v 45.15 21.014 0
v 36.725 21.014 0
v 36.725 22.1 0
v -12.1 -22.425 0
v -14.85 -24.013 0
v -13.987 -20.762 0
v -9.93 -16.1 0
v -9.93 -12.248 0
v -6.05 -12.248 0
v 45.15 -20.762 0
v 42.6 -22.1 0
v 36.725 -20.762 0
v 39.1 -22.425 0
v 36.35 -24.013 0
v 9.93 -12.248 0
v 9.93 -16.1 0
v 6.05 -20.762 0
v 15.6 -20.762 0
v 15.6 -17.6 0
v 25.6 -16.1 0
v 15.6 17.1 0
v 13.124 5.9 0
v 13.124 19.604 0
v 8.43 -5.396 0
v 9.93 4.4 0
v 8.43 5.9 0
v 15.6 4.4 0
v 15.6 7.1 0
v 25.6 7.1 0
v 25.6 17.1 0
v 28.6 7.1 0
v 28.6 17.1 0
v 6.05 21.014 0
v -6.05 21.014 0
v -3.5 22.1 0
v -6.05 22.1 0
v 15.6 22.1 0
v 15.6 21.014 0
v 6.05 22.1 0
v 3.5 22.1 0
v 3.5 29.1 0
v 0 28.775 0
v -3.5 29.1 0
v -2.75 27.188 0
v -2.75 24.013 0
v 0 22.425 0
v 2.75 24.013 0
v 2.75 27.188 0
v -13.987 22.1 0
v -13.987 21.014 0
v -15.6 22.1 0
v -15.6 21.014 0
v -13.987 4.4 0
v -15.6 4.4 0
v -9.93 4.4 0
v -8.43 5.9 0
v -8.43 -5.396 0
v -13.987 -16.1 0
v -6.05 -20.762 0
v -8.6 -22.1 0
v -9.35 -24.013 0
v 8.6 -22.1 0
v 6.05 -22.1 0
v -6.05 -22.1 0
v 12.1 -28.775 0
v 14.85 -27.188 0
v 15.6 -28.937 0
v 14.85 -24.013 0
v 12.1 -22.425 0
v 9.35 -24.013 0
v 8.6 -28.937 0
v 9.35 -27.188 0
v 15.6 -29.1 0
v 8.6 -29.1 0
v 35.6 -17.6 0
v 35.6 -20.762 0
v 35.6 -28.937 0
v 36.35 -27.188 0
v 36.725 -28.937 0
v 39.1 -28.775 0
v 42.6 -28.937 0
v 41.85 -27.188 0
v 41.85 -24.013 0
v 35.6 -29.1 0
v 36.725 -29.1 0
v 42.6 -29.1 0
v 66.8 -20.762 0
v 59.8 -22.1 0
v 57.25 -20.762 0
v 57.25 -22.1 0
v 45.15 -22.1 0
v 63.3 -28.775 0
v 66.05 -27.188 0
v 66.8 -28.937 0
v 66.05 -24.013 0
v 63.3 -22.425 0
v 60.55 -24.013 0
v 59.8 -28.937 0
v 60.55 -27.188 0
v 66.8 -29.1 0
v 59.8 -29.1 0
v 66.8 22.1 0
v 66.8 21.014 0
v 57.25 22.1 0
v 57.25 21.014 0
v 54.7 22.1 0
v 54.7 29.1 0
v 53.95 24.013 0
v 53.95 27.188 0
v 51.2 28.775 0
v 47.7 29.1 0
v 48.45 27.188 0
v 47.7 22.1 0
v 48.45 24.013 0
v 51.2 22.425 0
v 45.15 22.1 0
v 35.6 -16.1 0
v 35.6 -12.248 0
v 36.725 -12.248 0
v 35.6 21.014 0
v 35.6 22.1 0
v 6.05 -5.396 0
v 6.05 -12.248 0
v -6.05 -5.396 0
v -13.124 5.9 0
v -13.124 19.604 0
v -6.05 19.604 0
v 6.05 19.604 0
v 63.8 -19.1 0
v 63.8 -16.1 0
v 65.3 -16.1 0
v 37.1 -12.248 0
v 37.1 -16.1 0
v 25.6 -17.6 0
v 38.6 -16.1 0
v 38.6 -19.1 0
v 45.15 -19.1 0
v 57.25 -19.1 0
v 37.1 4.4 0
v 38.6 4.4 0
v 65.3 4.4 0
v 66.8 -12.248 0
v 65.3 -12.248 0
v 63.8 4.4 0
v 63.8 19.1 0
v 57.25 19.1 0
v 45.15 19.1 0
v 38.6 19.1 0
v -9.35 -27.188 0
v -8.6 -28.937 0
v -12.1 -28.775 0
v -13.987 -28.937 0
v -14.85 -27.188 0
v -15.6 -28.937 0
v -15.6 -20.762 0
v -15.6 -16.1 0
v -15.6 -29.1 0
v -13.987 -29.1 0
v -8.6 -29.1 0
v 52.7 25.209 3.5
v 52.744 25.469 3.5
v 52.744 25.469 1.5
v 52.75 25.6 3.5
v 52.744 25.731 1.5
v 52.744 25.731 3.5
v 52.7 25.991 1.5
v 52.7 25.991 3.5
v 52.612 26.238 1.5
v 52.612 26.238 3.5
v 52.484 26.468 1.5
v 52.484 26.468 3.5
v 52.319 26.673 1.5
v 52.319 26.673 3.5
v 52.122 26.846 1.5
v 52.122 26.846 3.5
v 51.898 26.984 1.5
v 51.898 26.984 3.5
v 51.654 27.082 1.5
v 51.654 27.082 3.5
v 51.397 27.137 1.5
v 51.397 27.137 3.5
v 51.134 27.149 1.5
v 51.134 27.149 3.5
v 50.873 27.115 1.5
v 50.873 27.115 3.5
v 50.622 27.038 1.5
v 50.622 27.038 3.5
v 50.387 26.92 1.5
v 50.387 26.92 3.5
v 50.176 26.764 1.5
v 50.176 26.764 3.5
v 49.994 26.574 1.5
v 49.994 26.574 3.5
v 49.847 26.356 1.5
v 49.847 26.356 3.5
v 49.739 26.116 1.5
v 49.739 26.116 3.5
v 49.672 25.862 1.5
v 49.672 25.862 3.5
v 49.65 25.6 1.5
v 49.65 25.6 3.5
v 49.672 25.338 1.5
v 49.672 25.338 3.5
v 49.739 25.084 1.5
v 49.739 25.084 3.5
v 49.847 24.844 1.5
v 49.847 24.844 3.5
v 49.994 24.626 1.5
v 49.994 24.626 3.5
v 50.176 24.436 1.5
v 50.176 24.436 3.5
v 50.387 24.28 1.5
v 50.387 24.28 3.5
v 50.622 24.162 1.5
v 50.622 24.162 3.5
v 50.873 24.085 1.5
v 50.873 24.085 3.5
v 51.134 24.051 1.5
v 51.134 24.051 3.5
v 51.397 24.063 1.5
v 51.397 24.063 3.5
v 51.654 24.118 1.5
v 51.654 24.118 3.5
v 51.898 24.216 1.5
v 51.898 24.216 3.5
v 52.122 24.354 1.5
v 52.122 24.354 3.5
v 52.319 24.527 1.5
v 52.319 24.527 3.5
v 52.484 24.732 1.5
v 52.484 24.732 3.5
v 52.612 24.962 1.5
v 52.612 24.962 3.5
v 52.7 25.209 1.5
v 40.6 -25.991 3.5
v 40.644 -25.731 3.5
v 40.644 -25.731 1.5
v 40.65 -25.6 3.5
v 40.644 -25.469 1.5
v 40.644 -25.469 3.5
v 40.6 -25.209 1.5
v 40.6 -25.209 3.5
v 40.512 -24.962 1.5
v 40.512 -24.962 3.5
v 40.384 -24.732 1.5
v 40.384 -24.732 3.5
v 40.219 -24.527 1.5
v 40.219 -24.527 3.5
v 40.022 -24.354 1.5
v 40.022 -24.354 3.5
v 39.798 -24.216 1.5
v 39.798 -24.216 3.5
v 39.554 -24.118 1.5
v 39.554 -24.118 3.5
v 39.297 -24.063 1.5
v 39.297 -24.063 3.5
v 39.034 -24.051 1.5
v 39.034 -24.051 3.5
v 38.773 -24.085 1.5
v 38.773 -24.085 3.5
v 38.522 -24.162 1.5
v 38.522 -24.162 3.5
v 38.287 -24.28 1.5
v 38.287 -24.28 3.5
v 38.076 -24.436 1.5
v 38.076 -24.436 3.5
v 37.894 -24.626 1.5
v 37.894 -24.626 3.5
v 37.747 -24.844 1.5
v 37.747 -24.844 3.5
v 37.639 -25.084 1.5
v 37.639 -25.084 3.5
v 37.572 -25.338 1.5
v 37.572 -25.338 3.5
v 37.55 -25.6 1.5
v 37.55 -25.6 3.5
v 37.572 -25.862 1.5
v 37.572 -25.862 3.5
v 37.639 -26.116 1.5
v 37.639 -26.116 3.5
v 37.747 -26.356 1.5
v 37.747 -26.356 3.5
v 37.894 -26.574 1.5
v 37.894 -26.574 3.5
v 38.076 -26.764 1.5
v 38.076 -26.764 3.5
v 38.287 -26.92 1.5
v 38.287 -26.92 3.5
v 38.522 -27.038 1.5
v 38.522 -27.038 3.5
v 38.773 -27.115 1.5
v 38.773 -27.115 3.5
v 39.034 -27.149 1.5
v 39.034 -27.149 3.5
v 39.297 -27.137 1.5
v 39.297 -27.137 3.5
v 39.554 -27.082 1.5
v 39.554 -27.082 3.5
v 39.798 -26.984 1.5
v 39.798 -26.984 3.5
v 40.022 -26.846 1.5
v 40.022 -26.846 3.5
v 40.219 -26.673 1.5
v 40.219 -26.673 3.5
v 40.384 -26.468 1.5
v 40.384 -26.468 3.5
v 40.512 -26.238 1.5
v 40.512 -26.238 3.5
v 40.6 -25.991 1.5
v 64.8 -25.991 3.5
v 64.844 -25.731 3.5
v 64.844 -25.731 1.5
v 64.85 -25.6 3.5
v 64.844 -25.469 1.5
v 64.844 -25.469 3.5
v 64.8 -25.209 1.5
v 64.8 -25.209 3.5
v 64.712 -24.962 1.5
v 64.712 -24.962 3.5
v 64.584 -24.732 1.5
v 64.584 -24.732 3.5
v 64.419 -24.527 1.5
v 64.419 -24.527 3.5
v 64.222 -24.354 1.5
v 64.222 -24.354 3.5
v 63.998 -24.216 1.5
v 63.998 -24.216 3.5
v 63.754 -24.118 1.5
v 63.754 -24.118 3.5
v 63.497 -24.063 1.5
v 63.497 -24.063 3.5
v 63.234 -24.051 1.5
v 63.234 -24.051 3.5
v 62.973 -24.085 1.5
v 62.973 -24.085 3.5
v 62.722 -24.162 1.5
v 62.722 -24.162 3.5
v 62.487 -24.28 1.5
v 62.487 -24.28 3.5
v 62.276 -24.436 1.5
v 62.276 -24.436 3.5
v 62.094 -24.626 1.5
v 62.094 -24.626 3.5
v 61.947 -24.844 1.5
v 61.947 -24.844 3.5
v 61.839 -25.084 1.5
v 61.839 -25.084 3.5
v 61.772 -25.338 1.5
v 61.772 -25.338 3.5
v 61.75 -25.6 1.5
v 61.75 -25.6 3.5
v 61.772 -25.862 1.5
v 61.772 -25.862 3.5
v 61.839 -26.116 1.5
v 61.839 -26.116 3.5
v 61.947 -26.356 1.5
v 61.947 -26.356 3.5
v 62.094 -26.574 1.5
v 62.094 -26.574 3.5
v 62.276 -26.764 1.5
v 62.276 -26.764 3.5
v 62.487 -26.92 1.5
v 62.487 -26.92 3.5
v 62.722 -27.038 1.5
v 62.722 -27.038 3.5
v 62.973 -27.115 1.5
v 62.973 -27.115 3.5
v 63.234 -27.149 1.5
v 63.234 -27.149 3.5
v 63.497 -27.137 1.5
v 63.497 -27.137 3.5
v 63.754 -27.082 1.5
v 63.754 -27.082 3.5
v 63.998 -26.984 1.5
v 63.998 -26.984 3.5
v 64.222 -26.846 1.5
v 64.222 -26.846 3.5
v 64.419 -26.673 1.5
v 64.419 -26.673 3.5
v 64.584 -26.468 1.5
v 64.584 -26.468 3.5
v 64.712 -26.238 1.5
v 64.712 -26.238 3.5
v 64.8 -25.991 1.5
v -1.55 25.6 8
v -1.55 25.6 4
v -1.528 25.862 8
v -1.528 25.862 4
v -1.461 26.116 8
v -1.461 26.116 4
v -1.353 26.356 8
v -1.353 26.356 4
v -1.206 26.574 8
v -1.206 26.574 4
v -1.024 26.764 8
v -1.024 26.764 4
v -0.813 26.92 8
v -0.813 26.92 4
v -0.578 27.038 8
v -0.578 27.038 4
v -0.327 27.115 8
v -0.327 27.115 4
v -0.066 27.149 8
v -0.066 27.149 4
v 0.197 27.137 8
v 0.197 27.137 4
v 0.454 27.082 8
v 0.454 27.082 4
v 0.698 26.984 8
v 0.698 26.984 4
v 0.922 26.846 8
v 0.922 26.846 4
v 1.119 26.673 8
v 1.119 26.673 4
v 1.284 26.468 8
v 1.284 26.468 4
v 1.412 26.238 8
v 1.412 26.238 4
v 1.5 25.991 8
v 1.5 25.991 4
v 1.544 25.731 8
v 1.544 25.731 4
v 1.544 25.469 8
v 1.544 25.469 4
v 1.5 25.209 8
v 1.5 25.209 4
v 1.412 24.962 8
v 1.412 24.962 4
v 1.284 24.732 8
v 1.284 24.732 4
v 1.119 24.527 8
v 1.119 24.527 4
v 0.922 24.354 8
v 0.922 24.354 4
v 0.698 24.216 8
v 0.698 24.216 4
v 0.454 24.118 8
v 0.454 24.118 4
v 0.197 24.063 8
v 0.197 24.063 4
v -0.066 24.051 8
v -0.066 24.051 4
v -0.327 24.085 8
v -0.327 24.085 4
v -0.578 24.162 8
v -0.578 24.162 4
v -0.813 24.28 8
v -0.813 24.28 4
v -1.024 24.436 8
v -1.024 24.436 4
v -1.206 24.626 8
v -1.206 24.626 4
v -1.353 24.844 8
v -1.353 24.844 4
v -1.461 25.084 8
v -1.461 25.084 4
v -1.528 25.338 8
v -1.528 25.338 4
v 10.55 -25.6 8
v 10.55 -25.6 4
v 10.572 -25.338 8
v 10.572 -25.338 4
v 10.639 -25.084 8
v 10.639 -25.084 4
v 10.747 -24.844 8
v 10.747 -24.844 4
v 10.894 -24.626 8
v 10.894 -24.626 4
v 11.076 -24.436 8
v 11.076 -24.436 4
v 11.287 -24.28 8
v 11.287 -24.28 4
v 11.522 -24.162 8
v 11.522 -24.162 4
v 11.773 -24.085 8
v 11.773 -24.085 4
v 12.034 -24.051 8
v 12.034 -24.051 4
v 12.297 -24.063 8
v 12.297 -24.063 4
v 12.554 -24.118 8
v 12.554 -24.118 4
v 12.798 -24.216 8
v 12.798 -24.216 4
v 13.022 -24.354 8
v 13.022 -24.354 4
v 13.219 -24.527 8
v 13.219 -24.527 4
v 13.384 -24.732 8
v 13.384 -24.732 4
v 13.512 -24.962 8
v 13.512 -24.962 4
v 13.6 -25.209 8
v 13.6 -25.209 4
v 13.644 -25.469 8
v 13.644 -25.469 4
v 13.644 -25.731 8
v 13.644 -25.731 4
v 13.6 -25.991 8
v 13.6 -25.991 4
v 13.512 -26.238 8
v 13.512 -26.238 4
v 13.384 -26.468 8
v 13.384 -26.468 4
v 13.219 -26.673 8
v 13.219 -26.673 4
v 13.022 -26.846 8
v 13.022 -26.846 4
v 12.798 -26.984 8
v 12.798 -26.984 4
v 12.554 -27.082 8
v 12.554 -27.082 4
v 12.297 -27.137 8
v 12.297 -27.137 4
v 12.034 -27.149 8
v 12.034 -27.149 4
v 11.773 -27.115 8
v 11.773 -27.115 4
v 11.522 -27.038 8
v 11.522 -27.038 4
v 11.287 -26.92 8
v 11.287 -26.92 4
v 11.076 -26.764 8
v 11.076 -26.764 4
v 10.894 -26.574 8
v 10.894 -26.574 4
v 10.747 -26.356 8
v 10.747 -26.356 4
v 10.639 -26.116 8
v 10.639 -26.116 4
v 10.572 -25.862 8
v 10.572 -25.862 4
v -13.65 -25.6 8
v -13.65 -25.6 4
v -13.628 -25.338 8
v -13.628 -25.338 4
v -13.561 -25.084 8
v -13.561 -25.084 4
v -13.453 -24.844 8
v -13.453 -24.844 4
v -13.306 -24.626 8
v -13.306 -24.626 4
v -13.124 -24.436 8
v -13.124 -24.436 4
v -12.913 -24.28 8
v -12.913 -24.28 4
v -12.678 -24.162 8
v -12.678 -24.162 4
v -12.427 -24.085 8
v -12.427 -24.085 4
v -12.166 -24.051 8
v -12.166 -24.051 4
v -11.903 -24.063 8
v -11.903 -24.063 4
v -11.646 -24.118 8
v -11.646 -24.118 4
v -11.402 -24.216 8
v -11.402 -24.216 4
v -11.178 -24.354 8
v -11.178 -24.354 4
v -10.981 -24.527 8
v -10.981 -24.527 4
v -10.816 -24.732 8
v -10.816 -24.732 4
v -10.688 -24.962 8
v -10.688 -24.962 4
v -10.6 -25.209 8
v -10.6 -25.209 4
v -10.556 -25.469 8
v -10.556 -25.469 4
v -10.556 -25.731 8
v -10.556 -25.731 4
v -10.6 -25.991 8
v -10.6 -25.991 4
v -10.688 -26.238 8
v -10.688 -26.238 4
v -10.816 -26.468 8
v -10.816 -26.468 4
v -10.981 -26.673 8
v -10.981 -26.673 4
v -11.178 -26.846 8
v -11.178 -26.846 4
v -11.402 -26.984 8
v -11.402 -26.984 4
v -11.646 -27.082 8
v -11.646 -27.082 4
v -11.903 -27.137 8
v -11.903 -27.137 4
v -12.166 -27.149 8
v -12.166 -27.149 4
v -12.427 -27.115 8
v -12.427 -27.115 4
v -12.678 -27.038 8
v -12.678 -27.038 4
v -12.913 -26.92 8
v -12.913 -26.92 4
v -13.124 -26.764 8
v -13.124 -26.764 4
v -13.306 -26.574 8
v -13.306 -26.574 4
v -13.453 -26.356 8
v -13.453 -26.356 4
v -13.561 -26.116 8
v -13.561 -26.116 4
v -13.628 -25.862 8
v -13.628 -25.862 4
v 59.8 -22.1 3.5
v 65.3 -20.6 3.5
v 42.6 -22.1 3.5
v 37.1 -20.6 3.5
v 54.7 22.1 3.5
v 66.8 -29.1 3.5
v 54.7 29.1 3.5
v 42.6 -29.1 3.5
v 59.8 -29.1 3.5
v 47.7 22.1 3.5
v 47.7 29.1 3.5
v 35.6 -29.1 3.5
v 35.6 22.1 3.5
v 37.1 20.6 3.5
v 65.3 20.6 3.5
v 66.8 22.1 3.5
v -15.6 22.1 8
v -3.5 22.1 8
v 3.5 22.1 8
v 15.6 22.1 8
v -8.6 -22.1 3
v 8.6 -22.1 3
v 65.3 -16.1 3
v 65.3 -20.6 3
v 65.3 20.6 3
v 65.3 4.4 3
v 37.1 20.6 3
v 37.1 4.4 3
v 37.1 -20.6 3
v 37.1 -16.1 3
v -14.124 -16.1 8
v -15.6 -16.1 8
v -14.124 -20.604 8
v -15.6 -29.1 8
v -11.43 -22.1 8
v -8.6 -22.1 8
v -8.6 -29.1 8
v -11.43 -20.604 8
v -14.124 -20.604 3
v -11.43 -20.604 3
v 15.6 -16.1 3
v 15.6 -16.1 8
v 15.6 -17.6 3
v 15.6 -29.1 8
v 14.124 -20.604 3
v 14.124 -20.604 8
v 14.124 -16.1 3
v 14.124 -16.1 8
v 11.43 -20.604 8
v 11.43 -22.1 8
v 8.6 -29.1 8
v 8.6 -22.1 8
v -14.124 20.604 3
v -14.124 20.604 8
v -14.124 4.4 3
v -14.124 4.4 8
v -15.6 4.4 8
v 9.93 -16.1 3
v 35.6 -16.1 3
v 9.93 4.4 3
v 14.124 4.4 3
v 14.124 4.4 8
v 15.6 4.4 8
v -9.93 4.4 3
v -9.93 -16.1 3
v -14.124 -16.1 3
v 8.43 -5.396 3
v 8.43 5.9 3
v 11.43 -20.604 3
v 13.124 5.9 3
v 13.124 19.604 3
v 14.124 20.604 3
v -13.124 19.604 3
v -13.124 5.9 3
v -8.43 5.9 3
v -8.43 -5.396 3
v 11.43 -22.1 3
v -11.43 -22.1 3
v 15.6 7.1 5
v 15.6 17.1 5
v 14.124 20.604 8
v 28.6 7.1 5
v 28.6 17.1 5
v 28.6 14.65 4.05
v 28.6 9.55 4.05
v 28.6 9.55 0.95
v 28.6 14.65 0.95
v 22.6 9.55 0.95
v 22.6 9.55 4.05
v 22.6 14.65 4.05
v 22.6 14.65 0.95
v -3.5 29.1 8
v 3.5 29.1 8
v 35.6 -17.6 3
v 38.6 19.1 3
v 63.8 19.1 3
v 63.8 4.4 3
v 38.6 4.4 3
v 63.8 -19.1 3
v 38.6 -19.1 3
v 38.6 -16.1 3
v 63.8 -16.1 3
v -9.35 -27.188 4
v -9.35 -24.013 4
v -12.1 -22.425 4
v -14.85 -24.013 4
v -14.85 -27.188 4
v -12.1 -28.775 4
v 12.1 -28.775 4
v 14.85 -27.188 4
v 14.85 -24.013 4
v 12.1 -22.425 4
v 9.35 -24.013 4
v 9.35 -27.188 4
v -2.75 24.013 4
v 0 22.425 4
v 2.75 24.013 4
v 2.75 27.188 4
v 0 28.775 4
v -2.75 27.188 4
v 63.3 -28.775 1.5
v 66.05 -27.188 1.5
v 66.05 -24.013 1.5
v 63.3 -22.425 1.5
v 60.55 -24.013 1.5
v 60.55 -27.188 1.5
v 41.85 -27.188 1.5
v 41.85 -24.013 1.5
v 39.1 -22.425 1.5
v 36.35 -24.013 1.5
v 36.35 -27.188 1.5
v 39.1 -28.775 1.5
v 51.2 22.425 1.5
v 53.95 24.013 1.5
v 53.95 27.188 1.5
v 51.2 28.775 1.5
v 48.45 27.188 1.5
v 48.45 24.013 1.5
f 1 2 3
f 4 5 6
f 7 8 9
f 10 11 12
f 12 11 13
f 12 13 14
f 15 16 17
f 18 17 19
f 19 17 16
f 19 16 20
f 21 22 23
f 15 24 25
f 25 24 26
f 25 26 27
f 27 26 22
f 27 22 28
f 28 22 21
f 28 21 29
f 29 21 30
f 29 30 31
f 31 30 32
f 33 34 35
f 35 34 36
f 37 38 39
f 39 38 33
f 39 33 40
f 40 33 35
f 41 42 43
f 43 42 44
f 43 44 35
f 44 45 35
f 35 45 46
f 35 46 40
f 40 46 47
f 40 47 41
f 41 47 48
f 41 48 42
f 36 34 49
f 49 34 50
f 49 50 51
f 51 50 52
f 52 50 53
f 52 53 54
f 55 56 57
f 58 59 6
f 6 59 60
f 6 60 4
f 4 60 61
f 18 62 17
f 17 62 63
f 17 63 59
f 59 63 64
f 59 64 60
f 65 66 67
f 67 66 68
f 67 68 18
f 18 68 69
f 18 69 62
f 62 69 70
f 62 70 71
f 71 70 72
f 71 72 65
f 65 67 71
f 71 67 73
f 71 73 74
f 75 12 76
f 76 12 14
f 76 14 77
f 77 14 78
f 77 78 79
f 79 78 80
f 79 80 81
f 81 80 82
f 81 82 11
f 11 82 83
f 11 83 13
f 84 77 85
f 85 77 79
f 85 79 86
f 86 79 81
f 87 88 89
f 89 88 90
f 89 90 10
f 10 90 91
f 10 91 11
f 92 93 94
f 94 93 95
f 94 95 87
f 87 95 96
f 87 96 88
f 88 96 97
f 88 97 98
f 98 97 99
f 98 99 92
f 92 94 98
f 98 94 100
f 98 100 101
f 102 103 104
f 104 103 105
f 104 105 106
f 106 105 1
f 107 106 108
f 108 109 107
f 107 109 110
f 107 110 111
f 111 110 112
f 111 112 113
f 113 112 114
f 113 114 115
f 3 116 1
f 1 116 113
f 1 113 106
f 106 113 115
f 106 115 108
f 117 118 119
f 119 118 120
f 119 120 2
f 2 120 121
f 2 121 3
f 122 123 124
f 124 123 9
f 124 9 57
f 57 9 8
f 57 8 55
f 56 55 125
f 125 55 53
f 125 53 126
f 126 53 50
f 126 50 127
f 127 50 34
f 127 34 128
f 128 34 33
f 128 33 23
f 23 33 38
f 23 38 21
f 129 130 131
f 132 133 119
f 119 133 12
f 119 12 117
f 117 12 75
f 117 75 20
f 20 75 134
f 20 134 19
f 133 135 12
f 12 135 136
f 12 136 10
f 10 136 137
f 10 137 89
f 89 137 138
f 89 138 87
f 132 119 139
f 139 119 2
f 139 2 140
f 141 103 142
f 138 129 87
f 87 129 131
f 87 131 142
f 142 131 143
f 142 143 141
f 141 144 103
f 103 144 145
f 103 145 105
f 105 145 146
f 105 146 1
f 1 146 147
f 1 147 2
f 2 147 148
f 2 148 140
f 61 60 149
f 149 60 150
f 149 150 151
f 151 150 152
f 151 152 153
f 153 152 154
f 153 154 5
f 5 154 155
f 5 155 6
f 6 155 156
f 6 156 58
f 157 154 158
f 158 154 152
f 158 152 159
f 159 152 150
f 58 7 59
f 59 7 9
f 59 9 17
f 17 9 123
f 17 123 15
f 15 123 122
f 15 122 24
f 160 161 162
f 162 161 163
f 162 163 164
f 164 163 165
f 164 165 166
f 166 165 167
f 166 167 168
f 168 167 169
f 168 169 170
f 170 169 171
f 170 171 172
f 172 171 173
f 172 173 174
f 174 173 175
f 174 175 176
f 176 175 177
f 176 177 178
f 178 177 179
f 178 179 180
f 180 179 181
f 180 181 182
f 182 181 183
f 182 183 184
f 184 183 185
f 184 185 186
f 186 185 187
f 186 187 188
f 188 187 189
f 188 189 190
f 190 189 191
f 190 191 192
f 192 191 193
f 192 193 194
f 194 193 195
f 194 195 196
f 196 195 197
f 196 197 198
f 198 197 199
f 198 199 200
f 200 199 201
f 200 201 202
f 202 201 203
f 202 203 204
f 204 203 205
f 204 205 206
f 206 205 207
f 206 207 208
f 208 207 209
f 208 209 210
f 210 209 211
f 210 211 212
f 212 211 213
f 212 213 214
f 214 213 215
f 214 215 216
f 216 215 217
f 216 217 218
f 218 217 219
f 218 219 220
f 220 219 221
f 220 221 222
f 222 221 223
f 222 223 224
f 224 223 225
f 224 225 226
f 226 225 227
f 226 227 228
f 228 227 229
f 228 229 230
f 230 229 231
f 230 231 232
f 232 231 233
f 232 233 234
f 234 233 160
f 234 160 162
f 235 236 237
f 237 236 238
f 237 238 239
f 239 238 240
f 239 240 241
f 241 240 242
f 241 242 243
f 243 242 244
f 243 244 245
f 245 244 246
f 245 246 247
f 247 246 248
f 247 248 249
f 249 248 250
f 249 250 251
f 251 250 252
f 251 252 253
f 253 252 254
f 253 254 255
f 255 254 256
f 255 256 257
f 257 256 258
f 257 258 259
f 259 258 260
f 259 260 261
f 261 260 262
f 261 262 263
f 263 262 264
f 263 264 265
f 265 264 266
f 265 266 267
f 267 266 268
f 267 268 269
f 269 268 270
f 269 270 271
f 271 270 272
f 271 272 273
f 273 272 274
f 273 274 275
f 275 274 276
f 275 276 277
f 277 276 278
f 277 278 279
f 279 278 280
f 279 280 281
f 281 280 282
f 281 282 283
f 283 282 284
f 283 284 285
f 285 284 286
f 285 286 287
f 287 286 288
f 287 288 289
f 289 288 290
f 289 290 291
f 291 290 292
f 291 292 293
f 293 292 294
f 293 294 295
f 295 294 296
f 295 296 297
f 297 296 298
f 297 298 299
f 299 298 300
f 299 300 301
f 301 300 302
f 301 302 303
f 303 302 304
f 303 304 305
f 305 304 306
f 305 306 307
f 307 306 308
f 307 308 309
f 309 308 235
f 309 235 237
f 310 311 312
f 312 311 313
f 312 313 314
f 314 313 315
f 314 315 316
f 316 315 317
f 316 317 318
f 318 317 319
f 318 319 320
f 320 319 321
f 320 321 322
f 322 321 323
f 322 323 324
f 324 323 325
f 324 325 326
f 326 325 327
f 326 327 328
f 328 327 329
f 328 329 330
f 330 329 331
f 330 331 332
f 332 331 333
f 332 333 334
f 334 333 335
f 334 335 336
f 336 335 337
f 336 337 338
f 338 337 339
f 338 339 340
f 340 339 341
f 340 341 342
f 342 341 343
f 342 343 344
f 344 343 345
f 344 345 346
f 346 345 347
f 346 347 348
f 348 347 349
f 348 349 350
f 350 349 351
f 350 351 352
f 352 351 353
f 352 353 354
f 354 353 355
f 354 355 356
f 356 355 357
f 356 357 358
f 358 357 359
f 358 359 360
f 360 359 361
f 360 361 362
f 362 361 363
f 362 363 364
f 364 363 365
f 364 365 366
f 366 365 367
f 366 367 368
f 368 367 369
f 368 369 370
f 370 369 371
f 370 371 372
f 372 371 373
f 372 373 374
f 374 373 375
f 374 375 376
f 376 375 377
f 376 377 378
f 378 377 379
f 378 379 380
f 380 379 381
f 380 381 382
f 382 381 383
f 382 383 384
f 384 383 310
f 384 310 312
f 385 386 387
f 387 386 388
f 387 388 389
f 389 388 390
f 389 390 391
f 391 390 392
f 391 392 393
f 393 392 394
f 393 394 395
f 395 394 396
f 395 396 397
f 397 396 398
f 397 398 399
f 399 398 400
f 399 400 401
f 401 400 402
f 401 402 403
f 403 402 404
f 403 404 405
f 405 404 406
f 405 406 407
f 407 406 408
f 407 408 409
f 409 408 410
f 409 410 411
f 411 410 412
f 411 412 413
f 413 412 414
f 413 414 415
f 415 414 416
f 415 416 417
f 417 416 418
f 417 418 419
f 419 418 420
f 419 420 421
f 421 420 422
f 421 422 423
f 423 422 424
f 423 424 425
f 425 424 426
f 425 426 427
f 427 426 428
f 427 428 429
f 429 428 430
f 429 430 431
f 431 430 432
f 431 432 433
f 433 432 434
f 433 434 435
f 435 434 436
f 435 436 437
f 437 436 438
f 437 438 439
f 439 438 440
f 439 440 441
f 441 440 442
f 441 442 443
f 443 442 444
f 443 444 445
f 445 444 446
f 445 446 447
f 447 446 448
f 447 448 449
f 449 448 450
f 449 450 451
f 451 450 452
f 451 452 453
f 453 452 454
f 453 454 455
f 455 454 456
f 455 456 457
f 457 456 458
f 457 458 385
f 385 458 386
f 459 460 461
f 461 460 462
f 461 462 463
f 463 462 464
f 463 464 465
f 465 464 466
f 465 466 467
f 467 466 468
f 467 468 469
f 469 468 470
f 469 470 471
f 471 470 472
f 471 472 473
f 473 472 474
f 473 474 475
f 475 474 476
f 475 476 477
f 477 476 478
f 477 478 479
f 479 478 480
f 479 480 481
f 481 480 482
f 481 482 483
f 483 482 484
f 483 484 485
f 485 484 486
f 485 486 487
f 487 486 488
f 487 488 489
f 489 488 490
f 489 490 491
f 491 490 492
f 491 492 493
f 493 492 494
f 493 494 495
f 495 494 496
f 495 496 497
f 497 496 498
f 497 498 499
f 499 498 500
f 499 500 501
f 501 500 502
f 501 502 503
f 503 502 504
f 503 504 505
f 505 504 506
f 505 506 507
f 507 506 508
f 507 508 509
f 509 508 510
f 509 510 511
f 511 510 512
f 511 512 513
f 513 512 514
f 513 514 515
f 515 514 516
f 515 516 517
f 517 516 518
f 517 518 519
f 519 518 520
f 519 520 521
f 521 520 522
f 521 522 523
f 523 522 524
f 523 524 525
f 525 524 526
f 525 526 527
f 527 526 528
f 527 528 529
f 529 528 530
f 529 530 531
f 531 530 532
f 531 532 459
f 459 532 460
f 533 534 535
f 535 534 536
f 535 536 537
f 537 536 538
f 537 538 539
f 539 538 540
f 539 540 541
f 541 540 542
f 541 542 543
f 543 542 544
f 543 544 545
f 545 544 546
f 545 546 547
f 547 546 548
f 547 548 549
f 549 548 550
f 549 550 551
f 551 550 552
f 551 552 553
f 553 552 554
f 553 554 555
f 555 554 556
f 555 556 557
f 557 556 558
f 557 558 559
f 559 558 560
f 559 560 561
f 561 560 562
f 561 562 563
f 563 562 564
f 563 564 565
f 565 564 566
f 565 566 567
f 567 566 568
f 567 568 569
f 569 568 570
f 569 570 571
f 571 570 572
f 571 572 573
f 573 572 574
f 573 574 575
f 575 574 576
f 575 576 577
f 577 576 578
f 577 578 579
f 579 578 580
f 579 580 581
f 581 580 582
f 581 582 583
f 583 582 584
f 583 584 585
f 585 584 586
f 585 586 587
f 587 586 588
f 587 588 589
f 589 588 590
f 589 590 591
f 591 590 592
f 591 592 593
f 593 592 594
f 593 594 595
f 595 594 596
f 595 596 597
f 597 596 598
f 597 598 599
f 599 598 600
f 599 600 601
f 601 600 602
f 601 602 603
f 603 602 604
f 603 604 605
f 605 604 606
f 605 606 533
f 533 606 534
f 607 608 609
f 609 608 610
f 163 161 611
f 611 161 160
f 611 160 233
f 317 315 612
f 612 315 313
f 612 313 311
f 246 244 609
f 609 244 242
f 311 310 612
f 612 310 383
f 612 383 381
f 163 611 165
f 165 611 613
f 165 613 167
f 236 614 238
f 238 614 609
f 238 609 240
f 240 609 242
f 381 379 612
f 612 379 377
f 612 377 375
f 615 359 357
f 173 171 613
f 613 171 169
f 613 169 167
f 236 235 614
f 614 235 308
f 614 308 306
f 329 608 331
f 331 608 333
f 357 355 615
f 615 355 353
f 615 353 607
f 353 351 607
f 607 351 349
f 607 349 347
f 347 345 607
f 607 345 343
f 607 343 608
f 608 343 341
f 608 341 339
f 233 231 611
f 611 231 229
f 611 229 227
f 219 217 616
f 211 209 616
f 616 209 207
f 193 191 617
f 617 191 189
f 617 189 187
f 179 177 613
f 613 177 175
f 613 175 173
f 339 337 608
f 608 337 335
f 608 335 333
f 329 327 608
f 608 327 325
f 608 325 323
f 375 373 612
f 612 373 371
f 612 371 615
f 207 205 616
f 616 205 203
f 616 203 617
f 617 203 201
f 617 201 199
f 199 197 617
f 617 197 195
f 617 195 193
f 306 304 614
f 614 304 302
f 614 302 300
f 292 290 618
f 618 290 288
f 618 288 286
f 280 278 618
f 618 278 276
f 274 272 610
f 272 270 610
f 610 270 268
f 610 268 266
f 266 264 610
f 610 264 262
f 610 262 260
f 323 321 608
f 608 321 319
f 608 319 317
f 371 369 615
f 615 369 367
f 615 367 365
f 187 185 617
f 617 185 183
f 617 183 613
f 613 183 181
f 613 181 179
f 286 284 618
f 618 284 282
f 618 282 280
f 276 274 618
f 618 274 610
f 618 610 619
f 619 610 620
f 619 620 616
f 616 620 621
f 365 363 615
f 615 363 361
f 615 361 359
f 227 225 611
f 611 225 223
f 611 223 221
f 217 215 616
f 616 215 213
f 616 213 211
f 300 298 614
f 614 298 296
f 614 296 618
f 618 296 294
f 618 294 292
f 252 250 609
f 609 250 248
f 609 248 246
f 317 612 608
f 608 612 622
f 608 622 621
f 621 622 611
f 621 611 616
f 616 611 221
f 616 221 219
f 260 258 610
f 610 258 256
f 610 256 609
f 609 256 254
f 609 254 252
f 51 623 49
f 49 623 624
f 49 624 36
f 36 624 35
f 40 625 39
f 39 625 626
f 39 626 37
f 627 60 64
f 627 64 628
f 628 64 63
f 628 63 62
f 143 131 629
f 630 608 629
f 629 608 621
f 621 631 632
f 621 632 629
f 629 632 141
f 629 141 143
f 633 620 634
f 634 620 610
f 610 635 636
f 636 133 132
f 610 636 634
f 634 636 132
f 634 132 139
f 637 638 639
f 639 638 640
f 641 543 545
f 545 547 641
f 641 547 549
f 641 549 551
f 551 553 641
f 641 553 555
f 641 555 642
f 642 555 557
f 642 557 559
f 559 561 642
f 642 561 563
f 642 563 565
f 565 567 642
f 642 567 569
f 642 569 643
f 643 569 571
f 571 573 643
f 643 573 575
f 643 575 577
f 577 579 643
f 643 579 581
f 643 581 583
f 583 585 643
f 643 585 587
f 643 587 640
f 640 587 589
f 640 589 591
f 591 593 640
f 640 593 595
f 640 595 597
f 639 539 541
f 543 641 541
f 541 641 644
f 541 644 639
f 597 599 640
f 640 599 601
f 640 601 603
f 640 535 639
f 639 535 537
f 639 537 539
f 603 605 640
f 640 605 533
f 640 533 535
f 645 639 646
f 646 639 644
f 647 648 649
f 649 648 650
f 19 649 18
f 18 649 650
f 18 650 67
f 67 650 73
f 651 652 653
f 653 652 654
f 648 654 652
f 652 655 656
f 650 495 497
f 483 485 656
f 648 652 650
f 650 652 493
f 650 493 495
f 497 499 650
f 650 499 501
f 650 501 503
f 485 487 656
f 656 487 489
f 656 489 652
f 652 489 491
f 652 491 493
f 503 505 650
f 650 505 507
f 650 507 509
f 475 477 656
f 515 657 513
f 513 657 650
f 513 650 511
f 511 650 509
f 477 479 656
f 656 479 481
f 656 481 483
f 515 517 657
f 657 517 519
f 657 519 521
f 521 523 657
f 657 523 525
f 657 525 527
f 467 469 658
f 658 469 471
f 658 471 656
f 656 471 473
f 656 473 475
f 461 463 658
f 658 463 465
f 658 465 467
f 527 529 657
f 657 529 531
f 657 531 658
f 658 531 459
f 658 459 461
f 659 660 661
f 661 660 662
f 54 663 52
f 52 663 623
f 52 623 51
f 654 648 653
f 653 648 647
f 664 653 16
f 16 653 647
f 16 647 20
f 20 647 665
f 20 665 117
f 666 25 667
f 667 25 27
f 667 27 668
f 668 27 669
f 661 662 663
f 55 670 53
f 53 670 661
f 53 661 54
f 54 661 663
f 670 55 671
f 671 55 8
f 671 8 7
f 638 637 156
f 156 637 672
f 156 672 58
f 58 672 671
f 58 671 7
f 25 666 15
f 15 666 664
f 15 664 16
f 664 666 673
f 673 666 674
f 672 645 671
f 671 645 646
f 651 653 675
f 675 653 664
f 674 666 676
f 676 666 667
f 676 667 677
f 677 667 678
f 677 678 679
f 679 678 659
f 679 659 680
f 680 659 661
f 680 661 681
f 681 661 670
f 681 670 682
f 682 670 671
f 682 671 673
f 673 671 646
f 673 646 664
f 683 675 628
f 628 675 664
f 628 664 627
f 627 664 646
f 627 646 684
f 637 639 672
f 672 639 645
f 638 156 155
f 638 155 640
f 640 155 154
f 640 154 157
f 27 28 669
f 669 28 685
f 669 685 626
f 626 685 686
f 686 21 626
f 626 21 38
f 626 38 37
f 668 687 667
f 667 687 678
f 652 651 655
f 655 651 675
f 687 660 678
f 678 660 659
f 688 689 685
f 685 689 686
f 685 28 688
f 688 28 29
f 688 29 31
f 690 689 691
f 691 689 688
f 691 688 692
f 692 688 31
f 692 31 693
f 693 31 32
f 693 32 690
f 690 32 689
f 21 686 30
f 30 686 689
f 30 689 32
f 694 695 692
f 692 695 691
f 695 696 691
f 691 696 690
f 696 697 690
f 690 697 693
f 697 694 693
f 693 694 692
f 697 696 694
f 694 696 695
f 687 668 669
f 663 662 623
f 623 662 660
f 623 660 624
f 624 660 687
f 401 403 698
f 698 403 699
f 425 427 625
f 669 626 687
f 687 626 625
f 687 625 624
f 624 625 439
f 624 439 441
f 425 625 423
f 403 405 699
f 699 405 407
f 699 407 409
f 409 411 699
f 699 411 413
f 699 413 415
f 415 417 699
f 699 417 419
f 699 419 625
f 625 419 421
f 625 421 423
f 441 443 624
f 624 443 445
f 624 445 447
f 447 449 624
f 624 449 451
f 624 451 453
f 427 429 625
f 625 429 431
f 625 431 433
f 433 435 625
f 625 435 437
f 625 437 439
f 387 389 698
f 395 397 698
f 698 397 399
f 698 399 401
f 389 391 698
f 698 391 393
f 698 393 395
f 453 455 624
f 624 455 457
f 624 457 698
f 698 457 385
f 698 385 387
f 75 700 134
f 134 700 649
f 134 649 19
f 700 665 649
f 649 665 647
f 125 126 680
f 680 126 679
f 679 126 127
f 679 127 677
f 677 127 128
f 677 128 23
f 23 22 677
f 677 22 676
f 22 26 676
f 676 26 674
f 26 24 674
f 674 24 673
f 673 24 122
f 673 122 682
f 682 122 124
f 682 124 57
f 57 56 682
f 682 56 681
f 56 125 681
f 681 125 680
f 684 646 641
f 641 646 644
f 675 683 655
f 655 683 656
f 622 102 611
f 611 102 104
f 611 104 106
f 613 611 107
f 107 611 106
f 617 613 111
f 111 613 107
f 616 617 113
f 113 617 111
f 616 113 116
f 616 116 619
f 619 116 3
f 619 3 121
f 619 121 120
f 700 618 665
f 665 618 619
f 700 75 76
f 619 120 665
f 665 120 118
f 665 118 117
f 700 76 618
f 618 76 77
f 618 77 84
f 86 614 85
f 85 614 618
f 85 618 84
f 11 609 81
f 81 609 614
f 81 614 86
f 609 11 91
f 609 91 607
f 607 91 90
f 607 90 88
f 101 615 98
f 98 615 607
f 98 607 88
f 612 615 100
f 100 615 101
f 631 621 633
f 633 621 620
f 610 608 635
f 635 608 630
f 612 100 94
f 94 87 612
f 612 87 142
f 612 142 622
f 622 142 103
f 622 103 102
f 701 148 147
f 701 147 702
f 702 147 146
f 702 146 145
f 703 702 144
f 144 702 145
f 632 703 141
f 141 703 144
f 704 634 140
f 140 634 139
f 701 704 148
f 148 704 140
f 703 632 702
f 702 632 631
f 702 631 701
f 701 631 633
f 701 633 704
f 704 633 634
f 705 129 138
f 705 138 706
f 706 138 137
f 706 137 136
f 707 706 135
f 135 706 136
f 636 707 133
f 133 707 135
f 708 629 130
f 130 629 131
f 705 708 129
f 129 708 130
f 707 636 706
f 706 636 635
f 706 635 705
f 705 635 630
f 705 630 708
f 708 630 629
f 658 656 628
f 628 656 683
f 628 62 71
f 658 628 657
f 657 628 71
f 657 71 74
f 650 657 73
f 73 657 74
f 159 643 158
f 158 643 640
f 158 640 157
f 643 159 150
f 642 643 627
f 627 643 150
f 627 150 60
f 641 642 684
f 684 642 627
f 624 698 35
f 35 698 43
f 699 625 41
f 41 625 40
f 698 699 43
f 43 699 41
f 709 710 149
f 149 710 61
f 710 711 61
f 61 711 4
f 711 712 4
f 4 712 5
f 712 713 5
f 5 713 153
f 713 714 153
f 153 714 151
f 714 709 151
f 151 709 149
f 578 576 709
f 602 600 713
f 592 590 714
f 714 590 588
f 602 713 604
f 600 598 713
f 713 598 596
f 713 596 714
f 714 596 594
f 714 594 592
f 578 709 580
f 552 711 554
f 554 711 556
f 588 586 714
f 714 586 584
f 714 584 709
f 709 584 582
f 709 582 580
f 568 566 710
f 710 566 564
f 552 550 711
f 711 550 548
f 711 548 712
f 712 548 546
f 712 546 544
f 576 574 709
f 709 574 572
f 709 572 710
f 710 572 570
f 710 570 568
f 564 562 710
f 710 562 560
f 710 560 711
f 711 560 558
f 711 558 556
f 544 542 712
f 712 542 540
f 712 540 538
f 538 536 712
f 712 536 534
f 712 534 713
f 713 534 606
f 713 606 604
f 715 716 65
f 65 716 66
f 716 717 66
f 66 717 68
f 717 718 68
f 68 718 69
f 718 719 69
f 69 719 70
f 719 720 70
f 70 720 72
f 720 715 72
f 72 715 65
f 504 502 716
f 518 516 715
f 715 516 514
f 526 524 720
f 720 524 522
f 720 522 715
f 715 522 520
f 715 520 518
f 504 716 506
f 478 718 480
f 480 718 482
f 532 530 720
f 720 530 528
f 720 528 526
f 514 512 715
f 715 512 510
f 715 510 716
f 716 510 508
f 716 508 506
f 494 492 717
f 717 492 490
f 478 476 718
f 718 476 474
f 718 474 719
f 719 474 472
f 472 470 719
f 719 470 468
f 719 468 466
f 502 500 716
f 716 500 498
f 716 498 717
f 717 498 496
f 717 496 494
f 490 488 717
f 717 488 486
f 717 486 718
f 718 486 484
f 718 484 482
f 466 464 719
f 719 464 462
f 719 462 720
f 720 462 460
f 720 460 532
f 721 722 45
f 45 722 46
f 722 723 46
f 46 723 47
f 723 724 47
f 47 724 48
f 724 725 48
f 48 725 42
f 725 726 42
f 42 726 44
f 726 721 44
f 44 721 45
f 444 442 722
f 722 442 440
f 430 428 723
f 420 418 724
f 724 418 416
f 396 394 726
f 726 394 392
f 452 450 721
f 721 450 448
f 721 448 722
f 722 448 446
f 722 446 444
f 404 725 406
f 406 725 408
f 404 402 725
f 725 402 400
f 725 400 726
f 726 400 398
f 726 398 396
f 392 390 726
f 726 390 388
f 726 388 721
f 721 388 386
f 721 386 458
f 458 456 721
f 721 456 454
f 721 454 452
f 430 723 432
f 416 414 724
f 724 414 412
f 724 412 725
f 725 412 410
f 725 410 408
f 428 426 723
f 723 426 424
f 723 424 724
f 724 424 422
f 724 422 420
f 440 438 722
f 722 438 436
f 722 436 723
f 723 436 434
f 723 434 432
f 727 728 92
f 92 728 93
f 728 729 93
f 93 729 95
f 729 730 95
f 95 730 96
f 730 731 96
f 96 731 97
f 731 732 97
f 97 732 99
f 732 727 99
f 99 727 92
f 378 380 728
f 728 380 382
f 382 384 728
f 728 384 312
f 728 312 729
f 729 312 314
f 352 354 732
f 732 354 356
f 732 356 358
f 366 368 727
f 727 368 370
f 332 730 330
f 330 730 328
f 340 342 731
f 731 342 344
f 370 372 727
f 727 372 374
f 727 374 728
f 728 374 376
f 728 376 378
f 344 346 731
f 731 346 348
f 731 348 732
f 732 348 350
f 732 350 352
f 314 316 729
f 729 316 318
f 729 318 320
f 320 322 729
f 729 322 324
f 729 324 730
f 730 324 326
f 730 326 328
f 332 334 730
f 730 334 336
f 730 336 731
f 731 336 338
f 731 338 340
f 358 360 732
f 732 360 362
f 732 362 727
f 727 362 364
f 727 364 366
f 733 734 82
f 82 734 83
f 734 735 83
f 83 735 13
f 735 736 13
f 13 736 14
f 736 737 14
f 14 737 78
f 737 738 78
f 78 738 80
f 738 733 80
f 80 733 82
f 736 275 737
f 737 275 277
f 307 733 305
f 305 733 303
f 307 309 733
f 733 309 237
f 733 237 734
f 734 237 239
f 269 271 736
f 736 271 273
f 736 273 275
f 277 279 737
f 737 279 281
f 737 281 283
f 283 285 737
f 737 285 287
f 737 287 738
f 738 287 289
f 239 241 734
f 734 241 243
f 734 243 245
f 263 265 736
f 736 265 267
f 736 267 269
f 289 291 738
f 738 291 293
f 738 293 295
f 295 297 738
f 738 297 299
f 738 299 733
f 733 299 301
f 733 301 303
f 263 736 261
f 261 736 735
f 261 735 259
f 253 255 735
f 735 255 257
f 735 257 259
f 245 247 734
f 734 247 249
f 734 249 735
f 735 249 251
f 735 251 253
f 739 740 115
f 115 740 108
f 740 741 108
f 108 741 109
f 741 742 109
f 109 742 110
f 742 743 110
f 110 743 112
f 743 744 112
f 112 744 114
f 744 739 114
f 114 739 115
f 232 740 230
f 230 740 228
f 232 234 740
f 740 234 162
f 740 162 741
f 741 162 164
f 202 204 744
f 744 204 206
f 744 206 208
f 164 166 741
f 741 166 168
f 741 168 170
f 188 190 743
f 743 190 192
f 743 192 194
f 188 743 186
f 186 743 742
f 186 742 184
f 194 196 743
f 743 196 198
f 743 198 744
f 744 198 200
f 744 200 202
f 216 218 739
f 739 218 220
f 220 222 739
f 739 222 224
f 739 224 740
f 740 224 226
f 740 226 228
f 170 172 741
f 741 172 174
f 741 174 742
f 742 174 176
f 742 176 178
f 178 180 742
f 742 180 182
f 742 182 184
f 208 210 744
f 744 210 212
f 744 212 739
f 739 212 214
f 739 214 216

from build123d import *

# Parameters (mm, degrees)
BOSS_EXTRUDE1_DEPTH = 3
BOSS_EXTRUDE2_DEPTH = 5
SKETCH1_4_W         = 13
SKETCH1_4_H         = 10
BOSS_EXTRUDE3_DEPTH = 5
SKETCH2_W           = 3.1
SKETCH2_H           = 5.1
CUT_EXTRUDE1_DEPTH  = 6
SKETCH1_5_W         = 31.2
SKETCH1_5_H         = 44.2
SKETCH1_5_W_2       = 28.248651934
SKETCH1_5_H_2       = 41.207612078
BOSS_EXTRUDE4_DEPTH = 8
SKETCH3_W           = 20
SKETCH3_H           = 1.5
BOSS_EXTRUDE5_DEPTH = 3
SKETCH1_6_W         = 1.475674033
SKETCH1_6_H         = 20.5
CUT_EXTRUDE2_DEPTH  = 25
SKETCH1_7_W         = 1.475674033
SKETCH1_7_H         = 20.5
CUT_EXTRUDE3_DEPTH  = 43.658762289
CUT_EXTRUDE4_DEPTH  = 43.199170608
SKETCH6_W           = 22.86
SKETCH6_H           = 1.496193961
CUT_EXTRUDE5_DEPTH  = 5
BOSS_EXTRUDE6_DEPTH = 3
SKETCH7_4_W         = 7
SKETCH7_4_H         = 7
SKETCH7_4_W_2       = 3.5
BOSS_EXTRUDE8_DEPTH = 3.5
SKETCH8_W           = 7
SKETCH8_H           = 7
BOSS_EXTRUDE9_DEPTH = 8
SKETCH9_R           = 1.55
CUT_EXTRUDE6_DEPTH  = 74.301091397
SKETCH9_3_R         = 1.55
CUT_EXTRUDE7_DEPTH  = 4
SKETCH9_4_R         = 1.55
CUT_EXTRUDE8_DEPTH  = 1.5


with BuildPart() as part:
    # Sketch1 → Boss-Extrude1 (new body)
    with BuildSketch(Plane.XY):
        Polygon((9.93, 4.4), (14.124325967, 4.4), (14.124325967, 20.603806039), (-14.124325967, 20.603806039), (-14.124325967, 4.4), (-9.93, 4.4), (-9.93, -16.1), (-14.124325967, -16.1), (-14.124325967, -20.603806039), (14.124325967, -20.603806039), (14.124325967, -16.1), (9.93, -16.1), align=None)
    extrude(amount=BOSS_EXTRUDE1_DEPTH)

    # Sketch1<3> → Boss-Extrude2 (add)
    with BuildSketch(Plane.XY):
        Polygon((15.6, 22.1), (-15.6, 22.1), (-15.6, -22.1), (15.6, -22.1), (15.6, -16.1), (14.124325967, -16.1), (14.124325967, -20.603806039), (-14.124325967, -20.603806039), (-14.124325967, 20.603806039), (14.124325967, 20.603806039), (14.124325967, 4.4), (15.6, 4.4), align=None)
    extrude(amount=BOSS_EXTRUDE2_DEPTH)

    # Sketch1<4> → Boss-Extrude3 (add)
    with BuildSketch(Plane.XY):
        with Locations((22.1, 12.1)):
            Rectangle(SKETCH1_4_W, SKETCH1_4_H)
    extrude(amount=BOSS_EXTRUDE3_DEPTH)

    # Sketch2 → Cut-Extrude1 (cut)
    with BuildSketch(Plane(origin=(28.6, 0, 0), x_dir=(0, 0, -1), z_dir=(1, 0, 0))):
        with Locations((-2.5, 12.1)):
            Rectangle(SKETCH2_W, SKETCH2_H)
    extrude(amount=-CUT_EXTRUDE1_DEPTH, mode=Mode.SUBTRACT)

    # Sketch1<5> → Boss-Extrude4 (add)
    with BuildSketch(Plane.XY):
        Rectangle(SKETCH1_5_W, SKETCH1_5_H)
        Rectangle(SKETCH1_5_W_2, SKETCH1_5_H_2, mode=Mode.SUBTRACT)
    extrude(amount=BOSS_EXTRUDE4_DEPTH)

    # Sketch3 → Boss-Extrude5 (add)
    with BuildSketch(Plane(origin=(0, 0, 0), x_dir=(-1, 0, 0), z_dir=(0, 0, -1))):
        with Locations((-25.6, -16.85)):
            Rectangle(SKETCH3_W, SKETCH3_H)
    extrude(amount=-BOSS_EXTRUDE5_DEPTH)

    # Sketch1<6> → Cut-Extrude2 (cut)
    with BuildSketch(Plane.XY):
        with Locations((-14.862162984, -5.85)):
            Rectangle(SKETCH1_6_W, SKETCH1_6_H)
    extrude(amount=CUT_EXTRUDE2_DEPTH, mode=Mode.SUBTRACT)

    # Sketch1<7> → Cut-Extrude3 (cut, through all)
    with BuildSketch(Plane.XY):
        with Locations((14.862162984, -5.85)):
            Rectangle(SKETCH1_7_W, SKETCH1_7_H)
    extrude(amount=CUT_EXTRUDE3_DEPTH, mode=Mode.SUBTRACT)

    # Sketch4 → Cut-Extrude4 (cut, through all)
    with BuildSketch(Plane.XY.offset(3)):
        Polygon((-13.124325967, 19.603806039), (13.124325967, 19.603806039), (13.124325967, 5.9), (8.43, 5.9), (8.43, -5.396193961), (-8.43, -5.396193961), (-8.43, 5.9), (-13.124325967, 5.9), align=None)
    extrude(amount=-CUT_EXTRUDE4_DEPTH, mode=Mode.SUBTRACT)

    # Sketch6 → Cut-Extrude5 (cut)
    with BuildSketch(Plane.XY.offset(8)):
        with Locations((0, -21.351903019)):
            Rectangle(SKETCH6_W, SKETCH6_H)
    extrude(amount=-CUT_EXTRUDE5_DEPTH, mode=Mode.SUBTRACT)



with BuildPart() as body_2:
    # Sketch7 → Boss-Extrude6 (new body)
    with BuildSketch(Plane.XY):
        Polygon((51.2, 19.1), (51.2, 20.6), (37.1, 20.6), (37.1, 4.4), (38.6, 4.4), (38.6, 19.1), align=None)
        Polygon((65.3, 20.6), (51.2, 20.6), (51.2, 19.1), (63.8, 19.1), (63.8, 4.4), (65.3, 4.4), align=None)
        Polygon((63.8, -19.1), (51.2, -19.1), (51.2, -20.6), (65.3, -20.6), (65.3, -16.1), (63.8, -16.1), align=None)
        Polygon((51.2, -20.6), (51.2, -19.1), (38.6, -19.1), (38.6, -16.1), (37.1, -16.1), (37.1, -20.6), align=None)
    extrude(amount=BOSS_EXTRUDE6_DEPTH)


with BuildPart() as part_1:
    add(part.part)

    add(body_2.part)  # Boss-Extrude8 merges body 2
    # Sketch7<4> → Boss-Extrude8 (add)
    with BuildSketch(Plane.XY):
        Polygon((47.7, 22.1), (35.6, 22.1), (35.6, -22.1), (42.6, -22.1), (49.2, -22.1), (51.2, -22.1), (51.2, -20.6), (37.1, -20.6), (37.1, -16.1), (37.1, 4.4), (37.1, 20.6), (51.2, 20.6), (51.2, 22.1), align=None)
        Polygon((54.7, 22.1), (51.2, 22.1), (51.2, 20.6), (65.3, 20.6), (65.3, 4.4), (65.3, -16.1), (65.3, -20.6), (51.2, -20.6), (51.2, -22.1), (53.2, -22.1), (59.8, -22.1), (66.8, -22.1), (66.8, 22.1), align=None)
        with Locations((63.3, -25.6)):
            Rectangle(SKETCH7_4_W, SKETCH7_4_H)
        with Locations((39.1, -25.6)):
            Rectangle(SKETCH7_4_W, SKETCH7_4_H)
        with Locations((52.95, 25.6)):
            Rectangle(SKETCH7_4_W_2, SKETCH7_4_H)
        with Locations((49.45, 25.6)):
            Rectangle(SKETCH7_4_W_2, SKETCH7_4_H)
    extrude(amount=BOSS_EXTRUDE8_DEPTH)

    # Sketch8 → Boss-Extrude9 (add)
    with BuildSketch(Plane.XY):
        with Locations((12.1, -25.6)):
            Rectangle(SKETCH8_W, SKETCH8_H)
        with Locations((0, 25.6)):
            Rectangle(SKETCH8_W, SKETCH8_H)
        with Locations((-12.1, -25.6)):
            Rectangle(SKETCH8_W, SKETCH8_H)
    extrude(amount=BOSS_EXTRUDE9_DEPTH)

    # Sketch9 → Cut-Extrude6 (cut, through all)
    with BuildSketch(Plane(origin=(0, 0, 0), x_dir=(-1, 0, 0), z_dir=(0, 0, -1))):
        with Locations((-63.3, -25.6)):
            Circle(SKETCH9_R)
        with Locations((-39.1, -25.6)):
            Circle(SKETCH9_R)
        with Locations((-12.1, -25.6)):
            Circle(SKETCH9_R)
        with Locations((12.1, -25.6)):
            Circle(SKETCH9_R)
        with Locations((0, 25.6)):
            Circle(SKETCH9_R)
        with Locations((-51.2, 25.6)):
            Circle(SKETCH9_R)
    extrude(amount=-CUT_EXTRUDE6_DEPTH, mode=Mode.SUBTRACT)

    # Sketch9<3> → Cut-Extrude7 (cut)
    # profile 1 of 3: a face of its own
    with BuildSketch(Plane(origin=(0, 0, 0), x_dir=(-1, 0, 0), z_dir=(0, 0, -1))):
        Polygon((0, 22.425), (2.749630657, 24.0125), (2.749630657, 27.1875), (0, 28.775), (-2.749630657, 27.1875), (-2.749630657, 24.0125), align=None)
        with Locations((0, 25.6)):
            Circle(SKETCH9_3_R, mode=Mode.SUBTRACT)
    # profile 2 of 3: a face of its own
    with BuildSketch(Plane(origin=(0, 0, 0), x_dir=(-1, 0, 0), z_dir=(0, 0, -1))):
        Polygon((9.350369343, -27.1875), (9.350369343, -24.0125), (12.1, -22.425), (14.849630657, -24.0125), (14.849630657, -27.1875), (12.1, -28.775), align=None)
        with Locations((12.1, -25.6)):
            Circle(SKETCH9_3_R, mode=Mode.SUBTRACT)
    # profile 3 of 3: a face of its own
    with BuildSketch(Plane(origin=(0, 0, 0), x_dir=(-1, 0, 0), z_dir=(0, 0, -1))):
        Polygon((-14.849630657, -27.1875), (-12.1, -28.775), (-9.350369343, -27.1875), (-9.350369343, -24.0125), (-12.1, -22.425), (-14.849630657, -24.0125), align=None)
        with Locations((-12.1, -25.6)):
            Circle(SKETCH9_3_R, mode=Mode.SUBTRACT)
    extrude(amount=-CUT_EXTRUDE7_DEPTH, mode=Mode.SUBTRACT)

    # Sketch9<4> → Cut-Extrude8 (cut)
    # profile 1 of 3: a face of its own
    with BuildSketch(Plane(origin=(0, 0, 0), x_dir=(-1, 0, 0), z_dir=(0, 0, -1))):
        Polygon((-53.949630657, 24.0125), (-51.2, 22.425), (-48.450369343, 24.0125), (-48.450369343, 27.1875), (-51.2, 28.775), (-53.949630657, 27.1875), align=None)
        with Locations((-51.2, 25.6)):
            Circle(SKETCH9_4_R, mode=Mode.SUBTRACT)
    # profile 2 of 3: a face of its own
    with BuildSketch(Plane(origin=(0, 0, 0), x_dir=(-1, 0, 0), z_dir=(0, 0, -1))):
        Polygon((-66.049630657, -27.1875), (-63.3, -28.775), (-60.550369343, -27.1875), (-60.550369343, -24.0125), (-63.3, -22.425), (-66.049630657, -24.0125), align=None)
        with Locations((-63.3, -25.6)):
            Circle(SKETCH9_4_R, mode=Mode.SUBTRACT)
    # profile 3 of 3: a face of its own
    with BuildSketch(Plane(origin=(0, 0, 0), x_dir=(-1, 0, 0), z_dir=(0, 0, -1))):
        Polygon((-41.849630657, -27.1875), (-41.849630657, -24.0125), (-39.1, -22.425), (-36.350369343, -24.0125), (-36.350369343, -27.1875), (-39.1, -28.775), align=None)
        with Locations((-39.1, -25.6)):
            Circle(SKETCH9_4_R, mode=Mode.SUBTRACT)
    extrude(amount=-CUT_EXTRUDE8_DEPTH, mode=Mode.SUBTRACT)


solid = part_1.part
